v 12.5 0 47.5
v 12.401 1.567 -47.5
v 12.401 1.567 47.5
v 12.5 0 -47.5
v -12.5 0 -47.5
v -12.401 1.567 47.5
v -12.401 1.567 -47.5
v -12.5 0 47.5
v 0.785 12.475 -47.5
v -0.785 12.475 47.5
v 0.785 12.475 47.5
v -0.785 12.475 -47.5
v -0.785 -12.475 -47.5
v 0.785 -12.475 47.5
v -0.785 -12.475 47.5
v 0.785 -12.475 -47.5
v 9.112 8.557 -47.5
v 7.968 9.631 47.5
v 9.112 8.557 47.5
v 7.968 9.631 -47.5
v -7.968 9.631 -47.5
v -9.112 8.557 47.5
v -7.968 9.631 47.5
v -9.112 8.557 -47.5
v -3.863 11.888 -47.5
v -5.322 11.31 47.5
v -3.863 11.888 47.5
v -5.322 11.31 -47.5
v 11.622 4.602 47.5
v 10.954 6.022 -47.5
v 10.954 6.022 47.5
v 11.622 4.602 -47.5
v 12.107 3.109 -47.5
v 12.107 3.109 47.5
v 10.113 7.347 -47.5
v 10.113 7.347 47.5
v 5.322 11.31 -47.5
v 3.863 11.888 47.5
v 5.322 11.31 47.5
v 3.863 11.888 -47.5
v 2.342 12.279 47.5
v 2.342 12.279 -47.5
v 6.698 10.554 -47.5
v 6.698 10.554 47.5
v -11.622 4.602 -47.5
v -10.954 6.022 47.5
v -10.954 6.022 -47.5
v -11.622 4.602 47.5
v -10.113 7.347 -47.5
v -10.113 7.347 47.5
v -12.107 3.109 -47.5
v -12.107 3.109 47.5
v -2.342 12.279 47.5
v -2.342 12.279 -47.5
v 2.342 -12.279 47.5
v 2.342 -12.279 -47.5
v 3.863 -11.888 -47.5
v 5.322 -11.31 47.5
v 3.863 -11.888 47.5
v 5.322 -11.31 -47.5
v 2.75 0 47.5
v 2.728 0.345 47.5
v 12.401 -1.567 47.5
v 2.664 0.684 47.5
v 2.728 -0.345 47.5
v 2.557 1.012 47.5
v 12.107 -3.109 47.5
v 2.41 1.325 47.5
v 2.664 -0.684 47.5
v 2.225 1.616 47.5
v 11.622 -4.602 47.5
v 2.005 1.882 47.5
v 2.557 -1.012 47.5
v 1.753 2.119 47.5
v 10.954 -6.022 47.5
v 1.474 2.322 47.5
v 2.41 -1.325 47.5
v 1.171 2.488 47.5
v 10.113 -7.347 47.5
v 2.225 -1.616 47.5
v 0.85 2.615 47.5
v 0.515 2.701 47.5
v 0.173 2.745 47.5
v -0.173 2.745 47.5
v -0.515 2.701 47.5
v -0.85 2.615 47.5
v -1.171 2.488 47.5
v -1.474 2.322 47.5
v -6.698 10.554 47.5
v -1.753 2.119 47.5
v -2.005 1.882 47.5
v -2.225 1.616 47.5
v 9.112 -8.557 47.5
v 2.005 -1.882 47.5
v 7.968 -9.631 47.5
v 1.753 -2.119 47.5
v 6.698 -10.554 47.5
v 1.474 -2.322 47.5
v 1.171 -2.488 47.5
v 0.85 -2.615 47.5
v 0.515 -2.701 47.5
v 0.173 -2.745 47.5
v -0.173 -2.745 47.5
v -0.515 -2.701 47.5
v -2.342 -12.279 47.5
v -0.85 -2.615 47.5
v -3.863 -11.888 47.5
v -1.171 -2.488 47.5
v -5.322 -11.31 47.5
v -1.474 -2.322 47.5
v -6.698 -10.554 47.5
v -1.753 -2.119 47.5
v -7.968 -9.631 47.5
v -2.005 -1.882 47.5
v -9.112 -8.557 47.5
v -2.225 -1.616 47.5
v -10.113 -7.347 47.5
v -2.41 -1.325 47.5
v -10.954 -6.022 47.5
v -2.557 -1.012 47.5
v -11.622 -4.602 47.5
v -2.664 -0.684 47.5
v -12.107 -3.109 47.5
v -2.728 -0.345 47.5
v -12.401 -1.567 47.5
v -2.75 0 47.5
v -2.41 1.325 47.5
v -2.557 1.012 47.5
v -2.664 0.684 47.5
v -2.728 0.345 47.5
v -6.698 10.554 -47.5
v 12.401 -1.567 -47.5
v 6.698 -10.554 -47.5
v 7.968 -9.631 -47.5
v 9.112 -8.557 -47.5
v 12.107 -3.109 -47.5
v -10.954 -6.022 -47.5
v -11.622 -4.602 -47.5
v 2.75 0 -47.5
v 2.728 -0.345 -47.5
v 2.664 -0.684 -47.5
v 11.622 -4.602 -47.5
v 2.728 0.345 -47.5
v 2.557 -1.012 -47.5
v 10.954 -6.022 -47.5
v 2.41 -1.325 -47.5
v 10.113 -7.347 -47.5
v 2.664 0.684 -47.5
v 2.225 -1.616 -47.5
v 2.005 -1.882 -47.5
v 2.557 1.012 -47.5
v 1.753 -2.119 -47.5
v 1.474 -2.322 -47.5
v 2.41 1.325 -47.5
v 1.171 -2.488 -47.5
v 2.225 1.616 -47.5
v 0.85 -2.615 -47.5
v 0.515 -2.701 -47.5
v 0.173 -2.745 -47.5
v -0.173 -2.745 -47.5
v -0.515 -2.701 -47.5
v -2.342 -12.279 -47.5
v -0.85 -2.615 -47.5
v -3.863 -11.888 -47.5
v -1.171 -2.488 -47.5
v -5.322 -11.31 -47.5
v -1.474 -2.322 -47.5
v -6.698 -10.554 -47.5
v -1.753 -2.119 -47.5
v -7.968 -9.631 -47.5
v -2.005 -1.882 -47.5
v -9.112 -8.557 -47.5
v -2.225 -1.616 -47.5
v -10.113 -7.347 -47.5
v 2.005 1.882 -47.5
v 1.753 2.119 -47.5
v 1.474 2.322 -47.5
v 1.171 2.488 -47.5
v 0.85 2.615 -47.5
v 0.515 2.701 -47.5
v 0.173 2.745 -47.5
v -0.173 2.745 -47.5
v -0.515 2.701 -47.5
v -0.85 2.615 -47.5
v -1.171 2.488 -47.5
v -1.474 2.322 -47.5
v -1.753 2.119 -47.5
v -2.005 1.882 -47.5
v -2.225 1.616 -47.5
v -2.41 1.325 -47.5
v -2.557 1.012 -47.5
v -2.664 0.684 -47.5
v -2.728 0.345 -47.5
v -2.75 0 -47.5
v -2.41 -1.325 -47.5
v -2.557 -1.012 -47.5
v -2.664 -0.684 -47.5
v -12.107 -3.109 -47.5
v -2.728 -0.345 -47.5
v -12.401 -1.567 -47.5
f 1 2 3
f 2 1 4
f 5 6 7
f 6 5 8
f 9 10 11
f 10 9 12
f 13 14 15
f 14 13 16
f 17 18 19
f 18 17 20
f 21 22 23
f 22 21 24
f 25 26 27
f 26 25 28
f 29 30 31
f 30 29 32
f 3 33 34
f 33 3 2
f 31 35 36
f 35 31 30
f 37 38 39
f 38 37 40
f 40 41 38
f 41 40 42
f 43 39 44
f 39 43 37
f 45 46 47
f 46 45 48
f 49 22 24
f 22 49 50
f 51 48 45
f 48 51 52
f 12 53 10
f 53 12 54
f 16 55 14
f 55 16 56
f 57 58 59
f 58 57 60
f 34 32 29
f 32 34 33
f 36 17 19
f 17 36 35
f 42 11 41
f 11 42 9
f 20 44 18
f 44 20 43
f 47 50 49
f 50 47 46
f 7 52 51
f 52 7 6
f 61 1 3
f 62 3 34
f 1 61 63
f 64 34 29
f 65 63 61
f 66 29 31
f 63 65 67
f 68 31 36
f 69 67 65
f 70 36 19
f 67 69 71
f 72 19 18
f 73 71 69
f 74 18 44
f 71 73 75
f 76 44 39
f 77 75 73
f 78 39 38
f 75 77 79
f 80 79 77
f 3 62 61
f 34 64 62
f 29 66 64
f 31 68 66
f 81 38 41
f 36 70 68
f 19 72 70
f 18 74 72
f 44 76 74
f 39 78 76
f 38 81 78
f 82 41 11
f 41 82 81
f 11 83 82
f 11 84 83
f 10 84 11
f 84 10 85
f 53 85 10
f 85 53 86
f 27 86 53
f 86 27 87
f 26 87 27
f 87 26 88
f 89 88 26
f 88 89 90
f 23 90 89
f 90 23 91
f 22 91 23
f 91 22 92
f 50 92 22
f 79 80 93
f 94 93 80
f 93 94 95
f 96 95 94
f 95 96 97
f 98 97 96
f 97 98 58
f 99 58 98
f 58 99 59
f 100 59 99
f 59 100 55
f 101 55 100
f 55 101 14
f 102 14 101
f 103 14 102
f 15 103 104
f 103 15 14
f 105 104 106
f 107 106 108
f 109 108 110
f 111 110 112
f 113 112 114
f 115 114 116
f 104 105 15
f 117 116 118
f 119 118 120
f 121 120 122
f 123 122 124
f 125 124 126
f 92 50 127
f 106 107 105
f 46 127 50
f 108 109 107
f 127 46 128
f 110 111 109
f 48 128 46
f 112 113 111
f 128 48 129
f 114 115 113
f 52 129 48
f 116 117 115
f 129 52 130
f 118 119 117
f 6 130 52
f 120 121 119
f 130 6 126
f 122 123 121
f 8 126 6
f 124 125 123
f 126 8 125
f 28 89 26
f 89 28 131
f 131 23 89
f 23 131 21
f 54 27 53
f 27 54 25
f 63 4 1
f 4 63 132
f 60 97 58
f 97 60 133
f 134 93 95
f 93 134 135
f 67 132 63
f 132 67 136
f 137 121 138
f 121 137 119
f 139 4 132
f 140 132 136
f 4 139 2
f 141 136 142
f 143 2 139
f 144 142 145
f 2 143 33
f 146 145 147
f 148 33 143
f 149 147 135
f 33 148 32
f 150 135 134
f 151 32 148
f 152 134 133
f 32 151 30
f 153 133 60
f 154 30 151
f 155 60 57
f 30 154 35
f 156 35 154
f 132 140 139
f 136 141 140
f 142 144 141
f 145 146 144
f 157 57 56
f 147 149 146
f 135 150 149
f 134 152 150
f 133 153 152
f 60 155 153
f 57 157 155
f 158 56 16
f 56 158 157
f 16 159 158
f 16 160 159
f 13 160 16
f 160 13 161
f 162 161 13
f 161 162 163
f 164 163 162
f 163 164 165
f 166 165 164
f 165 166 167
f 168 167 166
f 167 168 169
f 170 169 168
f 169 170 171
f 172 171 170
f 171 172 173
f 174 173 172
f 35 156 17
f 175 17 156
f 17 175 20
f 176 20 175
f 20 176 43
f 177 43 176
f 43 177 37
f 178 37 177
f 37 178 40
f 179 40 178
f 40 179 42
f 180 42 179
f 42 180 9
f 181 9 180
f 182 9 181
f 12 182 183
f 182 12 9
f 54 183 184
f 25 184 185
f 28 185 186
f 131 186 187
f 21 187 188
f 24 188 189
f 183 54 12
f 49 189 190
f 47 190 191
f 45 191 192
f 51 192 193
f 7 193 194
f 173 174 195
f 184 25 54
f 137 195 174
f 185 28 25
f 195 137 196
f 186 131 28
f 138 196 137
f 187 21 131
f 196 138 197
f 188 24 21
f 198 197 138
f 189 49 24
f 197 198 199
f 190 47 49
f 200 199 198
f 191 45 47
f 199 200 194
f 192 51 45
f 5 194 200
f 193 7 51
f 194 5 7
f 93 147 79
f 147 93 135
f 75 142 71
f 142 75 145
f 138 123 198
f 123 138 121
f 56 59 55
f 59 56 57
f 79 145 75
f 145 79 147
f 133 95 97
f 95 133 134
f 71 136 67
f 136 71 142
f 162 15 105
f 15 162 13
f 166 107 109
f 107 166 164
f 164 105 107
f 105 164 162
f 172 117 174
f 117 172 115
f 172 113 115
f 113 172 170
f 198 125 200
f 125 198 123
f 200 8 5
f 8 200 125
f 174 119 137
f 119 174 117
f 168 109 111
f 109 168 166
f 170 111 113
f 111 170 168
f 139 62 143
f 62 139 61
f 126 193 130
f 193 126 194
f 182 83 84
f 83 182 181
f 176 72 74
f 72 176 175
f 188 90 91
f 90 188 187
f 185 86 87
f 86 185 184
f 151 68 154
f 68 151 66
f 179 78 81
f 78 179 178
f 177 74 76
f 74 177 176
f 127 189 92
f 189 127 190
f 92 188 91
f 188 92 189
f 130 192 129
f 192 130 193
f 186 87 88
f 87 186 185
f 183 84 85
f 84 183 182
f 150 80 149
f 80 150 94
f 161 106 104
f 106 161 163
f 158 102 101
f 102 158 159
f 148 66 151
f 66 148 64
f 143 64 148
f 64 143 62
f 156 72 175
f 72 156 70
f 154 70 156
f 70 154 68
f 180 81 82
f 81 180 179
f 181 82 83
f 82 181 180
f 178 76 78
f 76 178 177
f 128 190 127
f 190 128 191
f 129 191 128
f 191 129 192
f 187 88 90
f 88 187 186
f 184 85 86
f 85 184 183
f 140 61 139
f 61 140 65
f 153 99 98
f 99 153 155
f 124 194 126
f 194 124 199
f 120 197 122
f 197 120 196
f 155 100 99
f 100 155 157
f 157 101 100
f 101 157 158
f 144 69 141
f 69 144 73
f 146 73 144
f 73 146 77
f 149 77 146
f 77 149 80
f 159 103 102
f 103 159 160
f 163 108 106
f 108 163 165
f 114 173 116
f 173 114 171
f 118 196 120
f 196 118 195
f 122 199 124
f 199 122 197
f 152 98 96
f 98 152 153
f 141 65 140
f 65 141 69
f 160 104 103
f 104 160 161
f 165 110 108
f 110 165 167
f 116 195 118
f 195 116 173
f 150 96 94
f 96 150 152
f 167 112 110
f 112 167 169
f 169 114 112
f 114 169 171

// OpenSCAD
$fn = 50;


difference() {
	union() {
		translate(v = [0, 0, -47.5000000000]) {
			cylinder(h = 95, r = 12.5000000000);
		}
	}
	union() {
		translate(v = [0, 0, -100.0000000000]) {
			cylinder(h = 200, r = 2.7500000000);
		}
	}
}
